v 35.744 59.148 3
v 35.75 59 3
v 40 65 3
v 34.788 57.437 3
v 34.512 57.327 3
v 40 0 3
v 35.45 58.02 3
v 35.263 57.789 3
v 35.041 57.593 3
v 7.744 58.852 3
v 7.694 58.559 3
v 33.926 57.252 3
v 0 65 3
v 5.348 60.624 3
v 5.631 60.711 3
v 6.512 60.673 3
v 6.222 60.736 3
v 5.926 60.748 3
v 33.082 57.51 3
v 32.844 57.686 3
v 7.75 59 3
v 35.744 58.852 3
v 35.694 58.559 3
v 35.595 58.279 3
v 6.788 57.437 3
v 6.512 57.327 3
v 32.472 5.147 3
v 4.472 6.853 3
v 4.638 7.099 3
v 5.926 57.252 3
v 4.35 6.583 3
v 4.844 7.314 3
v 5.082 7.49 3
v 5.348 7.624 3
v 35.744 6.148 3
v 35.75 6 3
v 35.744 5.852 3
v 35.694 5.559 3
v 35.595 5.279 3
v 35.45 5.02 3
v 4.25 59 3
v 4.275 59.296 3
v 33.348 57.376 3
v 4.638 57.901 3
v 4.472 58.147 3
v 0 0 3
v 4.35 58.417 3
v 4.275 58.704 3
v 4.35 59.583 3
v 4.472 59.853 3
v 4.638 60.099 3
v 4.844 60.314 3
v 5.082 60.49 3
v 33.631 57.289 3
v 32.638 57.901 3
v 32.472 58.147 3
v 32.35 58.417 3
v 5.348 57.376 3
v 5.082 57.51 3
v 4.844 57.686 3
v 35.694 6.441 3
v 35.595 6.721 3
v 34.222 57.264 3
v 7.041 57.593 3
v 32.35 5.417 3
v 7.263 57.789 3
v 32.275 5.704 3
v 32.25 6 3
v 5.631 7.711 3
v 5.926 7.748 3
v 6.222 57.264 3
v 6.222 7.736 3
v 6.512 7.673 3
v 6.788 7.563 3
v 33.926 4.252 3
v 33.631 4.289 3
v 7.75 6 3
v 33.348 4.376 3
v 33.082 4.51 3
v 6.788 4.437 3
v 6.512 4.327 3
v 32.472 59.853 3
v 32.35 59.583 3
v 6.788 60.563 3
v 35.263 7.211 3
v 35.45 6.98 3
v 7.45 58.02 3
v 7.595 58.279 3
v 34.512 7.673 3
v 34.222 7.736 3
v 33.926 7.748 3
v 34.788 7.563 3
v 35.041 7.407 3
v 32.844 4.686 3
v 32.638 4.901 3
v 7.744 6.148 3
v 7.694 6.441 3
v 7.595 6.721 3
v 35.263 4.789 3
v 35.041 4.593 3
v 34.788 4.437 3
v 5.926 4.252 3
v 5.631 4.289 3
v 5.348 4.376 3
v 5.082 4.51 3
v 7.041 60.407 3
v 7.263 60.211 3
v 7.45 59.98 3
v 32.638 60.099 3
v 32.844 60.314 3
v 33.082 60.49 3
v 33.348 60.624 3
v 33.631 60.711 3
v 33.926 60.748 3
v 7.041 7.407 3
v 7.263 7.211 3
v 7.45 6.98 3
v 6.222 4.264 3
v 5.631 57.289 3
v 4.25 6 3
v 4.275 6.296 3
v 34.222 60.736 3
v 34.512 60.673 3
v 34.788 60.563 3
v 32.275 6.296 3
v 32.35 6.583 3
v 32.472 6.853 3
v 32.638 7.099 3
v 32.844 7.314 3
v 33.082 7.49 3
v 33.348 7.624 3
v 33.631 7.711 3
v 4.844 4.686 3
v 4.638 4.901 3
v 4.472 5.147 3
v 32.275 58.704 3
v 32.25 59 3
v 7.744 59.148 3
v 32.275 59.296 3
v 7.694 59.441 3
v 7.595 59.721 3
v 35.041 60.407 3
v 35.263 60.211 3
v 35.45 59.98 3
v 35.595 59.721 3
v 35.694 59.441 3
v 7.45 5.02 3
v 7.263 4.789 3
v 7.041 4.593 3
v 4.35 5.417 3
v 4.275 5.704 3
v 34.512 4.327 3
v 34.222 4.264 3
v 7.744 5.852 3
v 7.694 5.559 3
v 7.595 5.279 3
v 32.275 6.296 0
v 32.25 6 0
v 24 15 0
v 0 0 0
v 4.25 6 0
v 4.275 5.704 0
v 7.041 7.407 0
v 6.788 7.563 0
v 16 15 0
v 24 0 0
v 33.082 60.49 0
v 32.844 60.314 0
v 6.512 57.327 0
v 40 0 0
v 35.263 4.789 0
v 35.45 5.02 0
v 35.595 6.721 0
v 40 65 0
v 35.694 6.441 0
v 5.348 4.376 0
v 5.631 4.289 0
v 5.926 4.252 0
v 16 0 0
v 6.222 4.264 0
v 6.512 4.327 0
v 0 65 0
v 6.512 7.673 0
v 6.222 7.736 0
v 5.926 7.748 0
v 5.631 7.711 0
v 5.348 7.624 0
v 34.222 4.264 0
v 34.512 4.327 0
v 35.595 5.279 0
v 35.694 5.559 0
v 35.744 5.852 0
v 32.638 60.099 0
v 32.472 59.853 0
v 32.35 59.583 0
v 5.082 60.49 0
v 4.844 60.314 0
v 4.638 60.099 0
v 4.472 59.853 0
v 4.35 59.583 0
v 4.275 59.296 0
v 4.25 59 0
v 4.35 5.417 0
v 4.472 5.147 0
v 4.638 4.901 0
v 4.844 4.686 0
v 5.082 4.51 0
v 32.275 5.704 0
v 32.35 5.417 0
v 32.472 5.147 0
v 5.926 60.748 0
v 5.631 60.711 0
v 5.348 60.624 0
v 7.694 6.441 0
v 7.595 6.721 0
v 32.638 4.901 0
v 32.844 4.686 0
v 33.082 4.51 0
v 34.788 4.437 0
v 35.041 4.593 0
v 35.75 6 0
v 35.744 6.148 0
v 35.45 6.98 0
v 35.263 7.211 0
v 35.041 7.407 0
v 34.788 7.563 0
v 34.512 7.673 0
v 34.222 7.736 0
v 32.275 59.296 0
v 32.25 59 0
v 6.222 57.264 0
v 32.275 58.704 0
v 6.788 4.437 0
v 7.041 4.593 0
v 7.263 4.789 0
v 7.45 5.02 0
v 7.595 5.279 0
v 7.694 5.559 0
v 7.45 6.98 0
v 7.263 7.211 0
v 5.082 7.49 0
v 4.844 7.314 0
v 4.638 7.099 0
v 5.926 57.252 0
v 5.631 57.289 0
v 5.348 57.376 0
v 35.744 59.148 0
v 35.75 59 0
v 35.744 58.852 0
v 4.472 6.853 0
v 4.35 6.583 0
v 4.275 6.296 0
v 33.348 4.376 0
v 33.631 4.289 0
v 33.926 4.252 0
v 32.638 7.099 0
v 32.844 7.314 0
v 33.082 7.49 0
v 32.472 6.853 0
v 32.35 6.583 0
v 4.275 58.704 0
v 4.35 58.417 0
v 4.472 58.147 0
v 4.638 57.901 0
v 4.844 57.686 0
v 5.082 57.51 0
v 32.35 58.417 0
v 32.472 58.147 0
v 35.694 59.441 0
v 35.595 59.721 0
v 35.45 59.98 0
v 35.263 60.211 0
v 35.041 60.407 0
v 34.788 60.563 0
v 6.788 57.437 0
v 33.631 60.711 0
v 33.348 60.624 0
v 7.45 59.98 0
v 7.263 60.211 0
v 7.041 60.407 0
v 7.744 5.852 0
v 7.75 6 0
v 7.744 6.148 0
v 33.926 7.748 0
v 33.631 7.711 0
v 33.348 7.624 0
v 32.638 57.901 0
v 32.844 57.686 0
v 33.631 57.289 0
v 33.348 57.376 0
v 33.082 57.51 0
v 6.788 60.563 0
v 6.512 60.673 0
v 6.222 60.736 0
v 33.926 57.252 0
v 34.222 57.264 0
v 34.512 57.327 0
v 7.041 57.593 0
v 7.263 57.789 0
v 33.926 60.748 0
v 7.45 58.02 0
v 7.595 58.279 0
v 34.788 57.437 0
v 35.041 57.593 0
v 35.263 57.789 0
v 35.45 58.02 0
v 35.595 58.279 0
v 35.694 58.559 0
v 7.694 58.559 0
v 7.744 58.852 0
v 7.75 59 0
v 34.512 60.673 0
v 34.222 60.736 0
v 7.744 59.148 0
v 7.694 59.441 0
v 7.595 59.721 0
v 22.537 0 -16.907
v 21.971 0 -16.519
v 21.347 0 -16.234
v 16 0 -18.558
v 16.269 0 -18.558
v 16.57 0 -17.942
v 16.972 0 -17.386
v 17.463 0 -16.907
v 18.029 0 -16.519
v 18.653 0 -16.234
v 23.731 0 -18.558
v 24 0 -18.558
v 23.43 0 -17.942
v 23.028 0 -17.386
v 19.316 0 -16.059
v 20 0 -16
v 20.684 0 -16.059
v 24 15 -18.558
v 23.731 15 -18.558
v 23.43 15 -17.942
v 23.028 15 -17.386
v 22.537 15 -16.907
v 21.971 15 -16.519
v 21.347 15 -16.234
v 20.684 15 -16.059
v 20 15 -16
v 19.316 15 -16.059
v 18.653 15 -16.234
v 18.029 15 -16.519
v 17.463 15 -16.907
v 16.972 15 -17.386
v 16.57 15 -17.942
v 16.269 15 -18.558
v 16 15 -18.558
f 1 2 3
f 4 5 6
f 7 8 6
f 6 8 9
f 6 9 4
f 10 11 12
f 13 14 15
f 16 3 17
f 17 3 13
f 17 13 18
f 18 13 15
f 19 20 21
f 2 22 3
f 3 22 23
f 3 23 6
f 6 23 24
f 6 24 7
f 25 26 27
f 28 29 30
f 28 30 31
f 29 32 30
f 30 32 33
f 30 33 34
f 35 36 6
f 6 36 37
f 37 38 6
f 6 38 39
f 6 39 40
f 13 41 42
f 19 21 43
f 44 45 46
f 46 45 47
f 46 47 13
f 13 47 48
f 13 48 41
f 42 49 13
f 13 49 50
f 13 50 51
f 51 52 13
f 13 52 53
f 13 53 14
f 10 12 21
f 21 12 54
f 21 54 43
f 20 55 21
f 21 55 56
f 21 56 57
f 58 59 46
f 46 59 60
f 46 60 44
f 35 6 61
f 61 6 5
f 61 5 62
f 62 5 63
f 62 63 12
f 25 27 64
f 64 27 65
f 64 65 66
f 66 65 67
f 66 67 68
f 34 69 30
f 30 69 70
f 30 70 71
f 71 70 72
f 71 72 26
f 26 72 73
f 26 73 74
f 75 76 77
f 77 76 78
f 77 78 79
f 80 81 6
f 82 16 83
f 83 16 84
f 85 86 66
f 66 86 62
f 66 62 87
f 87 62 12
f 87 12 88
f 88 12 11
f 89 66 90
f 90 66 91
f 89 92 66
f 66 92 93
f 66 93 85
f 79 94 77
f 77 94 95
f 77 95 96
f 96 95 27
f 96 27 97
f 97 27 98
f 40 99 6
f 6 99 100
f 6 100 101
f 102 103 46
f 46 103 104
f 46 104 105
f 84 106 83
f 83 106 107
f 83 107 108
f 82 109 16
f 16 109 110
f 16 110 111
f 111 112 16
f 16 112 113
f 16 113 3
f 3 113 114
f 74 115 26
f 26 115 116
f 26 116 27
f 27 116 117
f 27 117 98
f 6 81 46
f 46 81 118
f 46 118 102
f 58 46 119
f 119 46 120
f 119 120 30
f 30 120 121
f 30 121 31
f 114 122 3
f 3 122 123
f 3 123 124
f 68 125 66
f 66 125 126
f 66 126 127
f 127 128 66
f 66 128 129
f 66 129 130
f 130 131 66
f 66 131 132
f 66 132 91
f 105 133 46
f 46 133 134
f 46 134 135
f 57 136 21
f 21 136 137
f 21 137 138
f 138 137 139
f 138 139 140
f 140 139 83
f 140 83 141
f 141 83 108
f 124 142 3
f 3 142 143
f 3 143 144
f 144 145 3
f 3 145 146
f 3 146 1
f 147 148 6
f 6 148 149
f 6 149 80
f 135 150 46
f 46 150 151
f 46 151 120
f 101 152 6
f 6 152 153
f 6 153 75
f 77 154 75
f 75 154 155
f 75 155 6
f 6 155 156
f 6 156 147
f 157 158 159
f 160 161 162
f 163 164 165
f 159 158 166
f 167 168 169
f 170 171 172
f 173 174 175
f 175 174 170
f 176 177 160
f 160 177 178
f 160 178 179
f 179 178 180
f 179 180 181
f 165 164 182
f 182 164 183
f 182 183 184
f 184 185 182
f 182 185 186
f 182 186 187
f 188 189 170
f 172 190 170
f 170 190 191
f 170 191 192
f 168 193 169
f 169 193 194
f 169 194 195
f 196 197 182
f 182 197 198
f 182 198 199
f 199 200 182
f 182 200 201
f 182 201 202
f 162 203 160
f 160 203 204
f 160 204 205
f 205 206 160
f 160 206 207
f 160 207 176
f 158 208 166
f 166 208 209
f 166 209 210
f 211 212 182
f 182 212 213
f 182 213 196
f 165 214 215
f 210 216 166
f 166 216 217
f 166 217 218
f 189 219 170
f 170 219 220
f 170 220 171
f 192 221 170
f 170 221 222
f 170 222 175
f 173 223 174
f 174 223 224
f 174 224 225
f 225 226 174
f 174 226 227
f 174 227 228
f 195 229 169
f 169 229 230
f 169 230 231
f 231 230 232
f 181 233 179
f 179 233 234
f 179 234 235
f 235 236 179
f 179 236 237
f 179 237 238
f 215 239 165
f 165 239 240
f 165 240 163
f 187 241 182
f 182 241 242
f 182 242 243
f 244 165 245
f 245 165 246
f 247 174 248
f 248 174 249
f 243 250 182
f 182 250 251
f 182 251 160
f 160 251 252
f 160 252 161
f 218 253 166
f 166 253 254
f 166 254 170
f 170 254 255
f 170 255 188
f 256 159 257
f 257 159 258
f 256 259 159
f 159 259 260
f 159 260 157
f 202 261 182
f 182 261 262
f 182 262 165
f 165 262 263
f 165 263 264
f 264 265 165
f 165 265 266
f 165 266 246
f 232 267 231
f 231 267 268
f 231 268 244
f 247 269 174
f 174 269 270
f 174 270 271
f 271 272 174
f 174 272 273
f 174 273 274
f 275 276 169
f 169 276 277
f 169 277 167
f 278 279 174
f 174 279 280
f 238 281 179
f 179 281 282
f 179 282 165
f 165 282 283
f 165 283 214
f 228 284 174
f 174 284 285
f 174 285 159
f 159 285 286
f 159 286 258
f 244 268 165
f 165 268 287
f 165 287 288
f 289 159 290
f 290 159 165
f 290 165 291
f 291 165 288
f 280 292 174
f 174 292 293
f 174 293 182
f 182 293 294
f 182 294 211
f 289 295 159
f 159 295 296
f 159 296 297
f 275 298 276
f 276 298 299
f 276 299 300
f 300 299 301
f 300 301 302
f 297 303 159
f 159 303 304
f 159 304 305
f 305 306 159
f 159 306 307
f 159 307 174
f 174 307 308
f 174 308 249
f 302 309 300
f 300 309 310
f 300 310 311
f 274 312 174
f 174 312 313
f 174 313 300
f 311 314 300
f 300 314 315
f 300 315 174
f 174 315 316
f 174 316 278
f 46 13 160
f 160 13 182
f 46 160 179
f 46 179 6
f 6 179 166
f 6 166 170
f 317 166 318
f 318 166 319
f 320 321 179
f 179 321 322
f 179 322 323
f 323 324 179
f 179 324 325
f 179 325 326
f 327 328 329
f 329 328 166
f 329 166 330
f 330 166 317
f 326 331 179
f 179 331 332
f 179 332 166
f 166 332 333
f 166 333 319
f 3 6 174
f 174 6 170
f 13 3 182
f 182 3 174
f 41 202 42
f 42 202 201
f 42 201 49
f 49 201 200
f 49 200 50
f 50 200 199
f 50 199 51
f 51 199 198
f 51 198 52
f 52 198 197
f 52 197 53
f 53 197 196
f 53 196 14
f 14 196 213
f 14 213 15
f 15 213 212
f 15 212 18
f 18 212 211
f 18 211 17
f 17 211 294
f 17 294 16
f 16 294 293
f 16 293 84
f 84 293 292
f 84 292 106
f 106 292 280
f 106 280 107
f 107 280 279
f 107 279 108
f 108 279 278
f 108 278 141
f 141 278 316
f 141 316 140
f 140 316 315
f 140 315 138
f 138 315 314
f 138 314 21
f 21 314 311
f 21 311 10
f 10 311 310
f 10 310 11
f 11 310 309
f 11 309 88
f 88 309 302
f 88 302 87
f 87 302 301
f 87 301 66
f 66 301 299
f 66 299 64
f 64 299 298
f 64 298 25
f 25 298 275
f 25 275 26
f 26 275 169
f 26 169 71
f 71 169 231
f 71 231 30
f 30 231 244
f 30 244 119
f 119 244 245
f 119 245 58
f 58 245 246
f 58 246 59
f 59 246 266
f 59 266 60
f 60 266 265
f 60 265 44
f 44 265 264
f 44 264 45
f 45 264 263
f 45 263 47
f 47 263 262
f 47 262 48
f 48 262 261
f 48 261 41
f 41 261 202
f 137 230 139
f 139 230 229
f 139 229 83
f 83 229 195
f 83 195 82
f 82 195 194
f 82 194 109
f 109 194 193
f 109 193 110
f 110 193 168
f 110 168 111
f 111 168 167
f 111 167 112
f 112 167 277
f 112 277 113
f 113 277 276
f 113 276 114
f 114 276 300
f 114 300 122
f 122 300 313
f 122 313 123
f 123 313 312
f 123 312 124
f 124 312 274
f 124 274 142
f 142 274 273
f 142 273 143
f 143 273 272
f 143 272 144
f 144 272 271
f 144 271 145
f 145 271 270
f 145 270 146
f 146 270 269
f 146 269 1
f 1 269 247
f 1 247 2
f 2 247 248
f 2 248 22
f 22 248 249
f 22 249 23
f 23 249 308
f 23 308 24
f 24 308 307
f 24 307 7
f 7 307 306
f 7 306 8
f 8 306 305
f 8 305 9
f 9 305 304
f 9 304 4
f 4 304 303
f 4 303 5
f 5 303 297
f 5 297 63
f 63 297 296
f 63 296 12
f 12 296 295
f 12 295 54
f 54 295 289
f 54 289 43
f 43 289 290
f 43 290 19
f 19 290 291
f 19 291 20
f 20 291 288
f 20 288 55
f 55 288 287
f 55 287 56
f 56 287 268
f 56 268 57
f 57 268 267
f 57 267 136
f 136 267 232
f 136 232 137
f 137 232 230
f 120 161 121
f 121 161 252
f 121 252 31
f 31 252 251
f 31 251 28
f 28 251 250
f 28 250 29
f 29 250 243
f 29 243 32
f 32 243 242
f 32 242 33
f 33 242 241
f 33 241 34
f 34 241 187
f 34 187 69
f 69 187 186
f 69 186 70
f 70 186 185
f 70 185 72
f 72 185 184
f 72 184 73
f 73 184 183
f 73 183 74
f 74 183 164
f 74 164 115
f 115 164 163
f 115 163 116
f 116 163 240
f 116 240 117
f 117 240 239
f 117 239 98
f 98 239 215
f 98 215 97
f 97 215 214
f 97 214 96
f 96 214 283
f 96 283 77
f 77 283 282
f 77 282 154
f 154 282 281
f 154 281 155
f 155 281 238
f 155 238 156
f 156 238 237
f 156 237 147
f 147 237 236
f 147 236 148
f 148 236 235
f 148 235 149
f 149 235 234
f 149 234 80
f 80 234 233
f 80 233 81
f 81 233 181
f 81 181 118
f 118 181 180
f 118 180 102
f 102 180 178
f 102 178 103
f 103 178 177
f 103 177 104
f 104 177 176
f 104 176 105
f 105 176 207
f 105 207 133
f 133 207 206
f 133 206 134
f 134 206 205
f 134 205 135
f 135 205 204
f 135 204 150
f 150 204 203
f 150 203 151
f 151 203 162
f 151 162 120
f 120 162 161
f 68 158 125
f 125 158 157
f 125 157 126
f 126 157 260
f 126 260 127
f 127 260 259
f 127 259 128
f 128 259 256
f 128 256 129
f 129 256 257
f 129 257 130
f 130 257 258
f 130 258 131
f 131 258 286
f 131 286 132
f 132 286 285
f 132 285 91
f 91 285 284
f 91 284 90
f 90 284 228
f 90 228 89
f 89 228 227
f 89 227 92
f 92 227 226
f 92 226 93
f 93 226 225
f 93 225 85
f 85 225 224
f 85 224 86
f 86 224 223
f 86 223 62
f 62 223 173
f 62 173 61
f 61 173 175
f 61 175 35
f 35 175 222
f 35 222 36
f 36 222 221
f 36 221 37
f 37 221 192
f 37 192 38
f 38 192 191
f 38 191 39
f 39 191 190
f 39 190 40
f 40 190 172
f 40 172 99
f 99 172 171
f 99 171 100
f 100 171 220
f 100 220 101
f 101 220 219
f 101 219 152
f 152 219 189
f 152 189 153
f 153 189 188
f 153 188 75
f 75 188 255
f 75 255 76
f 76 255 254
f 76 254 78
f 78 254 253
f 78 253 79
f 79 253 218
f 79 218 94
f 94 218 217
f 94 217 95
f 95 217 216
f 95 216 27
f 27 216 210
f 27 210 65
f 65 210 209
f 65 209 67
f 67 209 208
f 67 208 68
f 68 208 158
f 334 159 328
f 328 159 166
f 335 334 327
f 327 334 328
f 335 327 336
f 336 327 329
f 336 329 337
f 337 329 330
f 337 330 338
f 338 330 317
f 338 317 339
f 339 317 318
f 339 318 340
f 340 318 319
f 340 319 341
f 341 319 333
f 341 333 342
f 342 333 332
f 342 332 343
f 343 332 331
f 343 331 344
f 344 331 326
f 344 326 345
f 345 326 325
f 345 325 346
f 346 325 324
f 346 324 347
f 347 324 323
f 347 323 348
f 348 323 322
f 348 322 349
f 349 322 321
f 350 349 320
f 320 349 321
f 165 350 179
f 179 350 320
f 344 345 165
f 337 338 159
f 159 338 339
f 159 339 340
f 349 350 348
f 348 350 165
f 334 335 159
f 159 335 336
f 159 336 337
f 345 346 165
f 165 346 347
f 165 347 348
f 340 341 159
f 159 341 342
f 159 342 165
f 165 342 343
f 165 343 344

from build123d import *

# Parameters (mm, degrees)
SKETCH1_W           = 40
SKETCH1_H           = 65
SKETCH1_R           = 1.75
BOSS_EXTRUDE1_DEPTH = 3
BOSS_EXTRUDE2_DEPTH = 15


with BuildPart() as part:
    # Sketch1 → Boss-Extrude1 (new body)
    with BuildSketch(Plane.XY):
        with Locations((20, 32.5)):
            Rectangle(SKETCH1_W, SKETCH1_H)
        with Locations((6, 59)):
            Circle(SKETCH1_R, mode=Mode.SUBTRACT)
        with Locations((34, 59)):
            Circle(SKETCH1_R, mode=Mode.SUBTRACT)
        with Locations((6, 6)):
            Circle(SKETCH1_R, mode=Mode.SUBTRACT)
        with Locations((34, 6)):
            Circle(SKETCH1_R, mode=Mode.SUBTRACT)
    extrude(amount=BOSS_EXTRUDE1_DEPTH)

    # Sketch2 → Boss-Extrude2 (add)
    with BuildSketch(Plane(origin=(0, 0, 0), x_dir=(-1, 0, 0), z_dir=(0, -1, 0))):
        with BuildLine():
            Line((-24, 0), (-16, 0))
            Line((-16, 0), (-16, 18.558164094))
            Line((-16, 18.558164094), (-16.268899731, 18.558164094))
            ThreePointArc((-16.268899731, 18.558164094), (-20, 16), (-23.731100269, 18.558164094))
            Line((-23.731100269, 18.558164094), (-24, 18.558164094))
            Line((-24, 18.558164094), (-24, 0))
        make_face()
    extrude(amount=-BOSS_EXTRUDE2_DEPTH)


solid = part.part
